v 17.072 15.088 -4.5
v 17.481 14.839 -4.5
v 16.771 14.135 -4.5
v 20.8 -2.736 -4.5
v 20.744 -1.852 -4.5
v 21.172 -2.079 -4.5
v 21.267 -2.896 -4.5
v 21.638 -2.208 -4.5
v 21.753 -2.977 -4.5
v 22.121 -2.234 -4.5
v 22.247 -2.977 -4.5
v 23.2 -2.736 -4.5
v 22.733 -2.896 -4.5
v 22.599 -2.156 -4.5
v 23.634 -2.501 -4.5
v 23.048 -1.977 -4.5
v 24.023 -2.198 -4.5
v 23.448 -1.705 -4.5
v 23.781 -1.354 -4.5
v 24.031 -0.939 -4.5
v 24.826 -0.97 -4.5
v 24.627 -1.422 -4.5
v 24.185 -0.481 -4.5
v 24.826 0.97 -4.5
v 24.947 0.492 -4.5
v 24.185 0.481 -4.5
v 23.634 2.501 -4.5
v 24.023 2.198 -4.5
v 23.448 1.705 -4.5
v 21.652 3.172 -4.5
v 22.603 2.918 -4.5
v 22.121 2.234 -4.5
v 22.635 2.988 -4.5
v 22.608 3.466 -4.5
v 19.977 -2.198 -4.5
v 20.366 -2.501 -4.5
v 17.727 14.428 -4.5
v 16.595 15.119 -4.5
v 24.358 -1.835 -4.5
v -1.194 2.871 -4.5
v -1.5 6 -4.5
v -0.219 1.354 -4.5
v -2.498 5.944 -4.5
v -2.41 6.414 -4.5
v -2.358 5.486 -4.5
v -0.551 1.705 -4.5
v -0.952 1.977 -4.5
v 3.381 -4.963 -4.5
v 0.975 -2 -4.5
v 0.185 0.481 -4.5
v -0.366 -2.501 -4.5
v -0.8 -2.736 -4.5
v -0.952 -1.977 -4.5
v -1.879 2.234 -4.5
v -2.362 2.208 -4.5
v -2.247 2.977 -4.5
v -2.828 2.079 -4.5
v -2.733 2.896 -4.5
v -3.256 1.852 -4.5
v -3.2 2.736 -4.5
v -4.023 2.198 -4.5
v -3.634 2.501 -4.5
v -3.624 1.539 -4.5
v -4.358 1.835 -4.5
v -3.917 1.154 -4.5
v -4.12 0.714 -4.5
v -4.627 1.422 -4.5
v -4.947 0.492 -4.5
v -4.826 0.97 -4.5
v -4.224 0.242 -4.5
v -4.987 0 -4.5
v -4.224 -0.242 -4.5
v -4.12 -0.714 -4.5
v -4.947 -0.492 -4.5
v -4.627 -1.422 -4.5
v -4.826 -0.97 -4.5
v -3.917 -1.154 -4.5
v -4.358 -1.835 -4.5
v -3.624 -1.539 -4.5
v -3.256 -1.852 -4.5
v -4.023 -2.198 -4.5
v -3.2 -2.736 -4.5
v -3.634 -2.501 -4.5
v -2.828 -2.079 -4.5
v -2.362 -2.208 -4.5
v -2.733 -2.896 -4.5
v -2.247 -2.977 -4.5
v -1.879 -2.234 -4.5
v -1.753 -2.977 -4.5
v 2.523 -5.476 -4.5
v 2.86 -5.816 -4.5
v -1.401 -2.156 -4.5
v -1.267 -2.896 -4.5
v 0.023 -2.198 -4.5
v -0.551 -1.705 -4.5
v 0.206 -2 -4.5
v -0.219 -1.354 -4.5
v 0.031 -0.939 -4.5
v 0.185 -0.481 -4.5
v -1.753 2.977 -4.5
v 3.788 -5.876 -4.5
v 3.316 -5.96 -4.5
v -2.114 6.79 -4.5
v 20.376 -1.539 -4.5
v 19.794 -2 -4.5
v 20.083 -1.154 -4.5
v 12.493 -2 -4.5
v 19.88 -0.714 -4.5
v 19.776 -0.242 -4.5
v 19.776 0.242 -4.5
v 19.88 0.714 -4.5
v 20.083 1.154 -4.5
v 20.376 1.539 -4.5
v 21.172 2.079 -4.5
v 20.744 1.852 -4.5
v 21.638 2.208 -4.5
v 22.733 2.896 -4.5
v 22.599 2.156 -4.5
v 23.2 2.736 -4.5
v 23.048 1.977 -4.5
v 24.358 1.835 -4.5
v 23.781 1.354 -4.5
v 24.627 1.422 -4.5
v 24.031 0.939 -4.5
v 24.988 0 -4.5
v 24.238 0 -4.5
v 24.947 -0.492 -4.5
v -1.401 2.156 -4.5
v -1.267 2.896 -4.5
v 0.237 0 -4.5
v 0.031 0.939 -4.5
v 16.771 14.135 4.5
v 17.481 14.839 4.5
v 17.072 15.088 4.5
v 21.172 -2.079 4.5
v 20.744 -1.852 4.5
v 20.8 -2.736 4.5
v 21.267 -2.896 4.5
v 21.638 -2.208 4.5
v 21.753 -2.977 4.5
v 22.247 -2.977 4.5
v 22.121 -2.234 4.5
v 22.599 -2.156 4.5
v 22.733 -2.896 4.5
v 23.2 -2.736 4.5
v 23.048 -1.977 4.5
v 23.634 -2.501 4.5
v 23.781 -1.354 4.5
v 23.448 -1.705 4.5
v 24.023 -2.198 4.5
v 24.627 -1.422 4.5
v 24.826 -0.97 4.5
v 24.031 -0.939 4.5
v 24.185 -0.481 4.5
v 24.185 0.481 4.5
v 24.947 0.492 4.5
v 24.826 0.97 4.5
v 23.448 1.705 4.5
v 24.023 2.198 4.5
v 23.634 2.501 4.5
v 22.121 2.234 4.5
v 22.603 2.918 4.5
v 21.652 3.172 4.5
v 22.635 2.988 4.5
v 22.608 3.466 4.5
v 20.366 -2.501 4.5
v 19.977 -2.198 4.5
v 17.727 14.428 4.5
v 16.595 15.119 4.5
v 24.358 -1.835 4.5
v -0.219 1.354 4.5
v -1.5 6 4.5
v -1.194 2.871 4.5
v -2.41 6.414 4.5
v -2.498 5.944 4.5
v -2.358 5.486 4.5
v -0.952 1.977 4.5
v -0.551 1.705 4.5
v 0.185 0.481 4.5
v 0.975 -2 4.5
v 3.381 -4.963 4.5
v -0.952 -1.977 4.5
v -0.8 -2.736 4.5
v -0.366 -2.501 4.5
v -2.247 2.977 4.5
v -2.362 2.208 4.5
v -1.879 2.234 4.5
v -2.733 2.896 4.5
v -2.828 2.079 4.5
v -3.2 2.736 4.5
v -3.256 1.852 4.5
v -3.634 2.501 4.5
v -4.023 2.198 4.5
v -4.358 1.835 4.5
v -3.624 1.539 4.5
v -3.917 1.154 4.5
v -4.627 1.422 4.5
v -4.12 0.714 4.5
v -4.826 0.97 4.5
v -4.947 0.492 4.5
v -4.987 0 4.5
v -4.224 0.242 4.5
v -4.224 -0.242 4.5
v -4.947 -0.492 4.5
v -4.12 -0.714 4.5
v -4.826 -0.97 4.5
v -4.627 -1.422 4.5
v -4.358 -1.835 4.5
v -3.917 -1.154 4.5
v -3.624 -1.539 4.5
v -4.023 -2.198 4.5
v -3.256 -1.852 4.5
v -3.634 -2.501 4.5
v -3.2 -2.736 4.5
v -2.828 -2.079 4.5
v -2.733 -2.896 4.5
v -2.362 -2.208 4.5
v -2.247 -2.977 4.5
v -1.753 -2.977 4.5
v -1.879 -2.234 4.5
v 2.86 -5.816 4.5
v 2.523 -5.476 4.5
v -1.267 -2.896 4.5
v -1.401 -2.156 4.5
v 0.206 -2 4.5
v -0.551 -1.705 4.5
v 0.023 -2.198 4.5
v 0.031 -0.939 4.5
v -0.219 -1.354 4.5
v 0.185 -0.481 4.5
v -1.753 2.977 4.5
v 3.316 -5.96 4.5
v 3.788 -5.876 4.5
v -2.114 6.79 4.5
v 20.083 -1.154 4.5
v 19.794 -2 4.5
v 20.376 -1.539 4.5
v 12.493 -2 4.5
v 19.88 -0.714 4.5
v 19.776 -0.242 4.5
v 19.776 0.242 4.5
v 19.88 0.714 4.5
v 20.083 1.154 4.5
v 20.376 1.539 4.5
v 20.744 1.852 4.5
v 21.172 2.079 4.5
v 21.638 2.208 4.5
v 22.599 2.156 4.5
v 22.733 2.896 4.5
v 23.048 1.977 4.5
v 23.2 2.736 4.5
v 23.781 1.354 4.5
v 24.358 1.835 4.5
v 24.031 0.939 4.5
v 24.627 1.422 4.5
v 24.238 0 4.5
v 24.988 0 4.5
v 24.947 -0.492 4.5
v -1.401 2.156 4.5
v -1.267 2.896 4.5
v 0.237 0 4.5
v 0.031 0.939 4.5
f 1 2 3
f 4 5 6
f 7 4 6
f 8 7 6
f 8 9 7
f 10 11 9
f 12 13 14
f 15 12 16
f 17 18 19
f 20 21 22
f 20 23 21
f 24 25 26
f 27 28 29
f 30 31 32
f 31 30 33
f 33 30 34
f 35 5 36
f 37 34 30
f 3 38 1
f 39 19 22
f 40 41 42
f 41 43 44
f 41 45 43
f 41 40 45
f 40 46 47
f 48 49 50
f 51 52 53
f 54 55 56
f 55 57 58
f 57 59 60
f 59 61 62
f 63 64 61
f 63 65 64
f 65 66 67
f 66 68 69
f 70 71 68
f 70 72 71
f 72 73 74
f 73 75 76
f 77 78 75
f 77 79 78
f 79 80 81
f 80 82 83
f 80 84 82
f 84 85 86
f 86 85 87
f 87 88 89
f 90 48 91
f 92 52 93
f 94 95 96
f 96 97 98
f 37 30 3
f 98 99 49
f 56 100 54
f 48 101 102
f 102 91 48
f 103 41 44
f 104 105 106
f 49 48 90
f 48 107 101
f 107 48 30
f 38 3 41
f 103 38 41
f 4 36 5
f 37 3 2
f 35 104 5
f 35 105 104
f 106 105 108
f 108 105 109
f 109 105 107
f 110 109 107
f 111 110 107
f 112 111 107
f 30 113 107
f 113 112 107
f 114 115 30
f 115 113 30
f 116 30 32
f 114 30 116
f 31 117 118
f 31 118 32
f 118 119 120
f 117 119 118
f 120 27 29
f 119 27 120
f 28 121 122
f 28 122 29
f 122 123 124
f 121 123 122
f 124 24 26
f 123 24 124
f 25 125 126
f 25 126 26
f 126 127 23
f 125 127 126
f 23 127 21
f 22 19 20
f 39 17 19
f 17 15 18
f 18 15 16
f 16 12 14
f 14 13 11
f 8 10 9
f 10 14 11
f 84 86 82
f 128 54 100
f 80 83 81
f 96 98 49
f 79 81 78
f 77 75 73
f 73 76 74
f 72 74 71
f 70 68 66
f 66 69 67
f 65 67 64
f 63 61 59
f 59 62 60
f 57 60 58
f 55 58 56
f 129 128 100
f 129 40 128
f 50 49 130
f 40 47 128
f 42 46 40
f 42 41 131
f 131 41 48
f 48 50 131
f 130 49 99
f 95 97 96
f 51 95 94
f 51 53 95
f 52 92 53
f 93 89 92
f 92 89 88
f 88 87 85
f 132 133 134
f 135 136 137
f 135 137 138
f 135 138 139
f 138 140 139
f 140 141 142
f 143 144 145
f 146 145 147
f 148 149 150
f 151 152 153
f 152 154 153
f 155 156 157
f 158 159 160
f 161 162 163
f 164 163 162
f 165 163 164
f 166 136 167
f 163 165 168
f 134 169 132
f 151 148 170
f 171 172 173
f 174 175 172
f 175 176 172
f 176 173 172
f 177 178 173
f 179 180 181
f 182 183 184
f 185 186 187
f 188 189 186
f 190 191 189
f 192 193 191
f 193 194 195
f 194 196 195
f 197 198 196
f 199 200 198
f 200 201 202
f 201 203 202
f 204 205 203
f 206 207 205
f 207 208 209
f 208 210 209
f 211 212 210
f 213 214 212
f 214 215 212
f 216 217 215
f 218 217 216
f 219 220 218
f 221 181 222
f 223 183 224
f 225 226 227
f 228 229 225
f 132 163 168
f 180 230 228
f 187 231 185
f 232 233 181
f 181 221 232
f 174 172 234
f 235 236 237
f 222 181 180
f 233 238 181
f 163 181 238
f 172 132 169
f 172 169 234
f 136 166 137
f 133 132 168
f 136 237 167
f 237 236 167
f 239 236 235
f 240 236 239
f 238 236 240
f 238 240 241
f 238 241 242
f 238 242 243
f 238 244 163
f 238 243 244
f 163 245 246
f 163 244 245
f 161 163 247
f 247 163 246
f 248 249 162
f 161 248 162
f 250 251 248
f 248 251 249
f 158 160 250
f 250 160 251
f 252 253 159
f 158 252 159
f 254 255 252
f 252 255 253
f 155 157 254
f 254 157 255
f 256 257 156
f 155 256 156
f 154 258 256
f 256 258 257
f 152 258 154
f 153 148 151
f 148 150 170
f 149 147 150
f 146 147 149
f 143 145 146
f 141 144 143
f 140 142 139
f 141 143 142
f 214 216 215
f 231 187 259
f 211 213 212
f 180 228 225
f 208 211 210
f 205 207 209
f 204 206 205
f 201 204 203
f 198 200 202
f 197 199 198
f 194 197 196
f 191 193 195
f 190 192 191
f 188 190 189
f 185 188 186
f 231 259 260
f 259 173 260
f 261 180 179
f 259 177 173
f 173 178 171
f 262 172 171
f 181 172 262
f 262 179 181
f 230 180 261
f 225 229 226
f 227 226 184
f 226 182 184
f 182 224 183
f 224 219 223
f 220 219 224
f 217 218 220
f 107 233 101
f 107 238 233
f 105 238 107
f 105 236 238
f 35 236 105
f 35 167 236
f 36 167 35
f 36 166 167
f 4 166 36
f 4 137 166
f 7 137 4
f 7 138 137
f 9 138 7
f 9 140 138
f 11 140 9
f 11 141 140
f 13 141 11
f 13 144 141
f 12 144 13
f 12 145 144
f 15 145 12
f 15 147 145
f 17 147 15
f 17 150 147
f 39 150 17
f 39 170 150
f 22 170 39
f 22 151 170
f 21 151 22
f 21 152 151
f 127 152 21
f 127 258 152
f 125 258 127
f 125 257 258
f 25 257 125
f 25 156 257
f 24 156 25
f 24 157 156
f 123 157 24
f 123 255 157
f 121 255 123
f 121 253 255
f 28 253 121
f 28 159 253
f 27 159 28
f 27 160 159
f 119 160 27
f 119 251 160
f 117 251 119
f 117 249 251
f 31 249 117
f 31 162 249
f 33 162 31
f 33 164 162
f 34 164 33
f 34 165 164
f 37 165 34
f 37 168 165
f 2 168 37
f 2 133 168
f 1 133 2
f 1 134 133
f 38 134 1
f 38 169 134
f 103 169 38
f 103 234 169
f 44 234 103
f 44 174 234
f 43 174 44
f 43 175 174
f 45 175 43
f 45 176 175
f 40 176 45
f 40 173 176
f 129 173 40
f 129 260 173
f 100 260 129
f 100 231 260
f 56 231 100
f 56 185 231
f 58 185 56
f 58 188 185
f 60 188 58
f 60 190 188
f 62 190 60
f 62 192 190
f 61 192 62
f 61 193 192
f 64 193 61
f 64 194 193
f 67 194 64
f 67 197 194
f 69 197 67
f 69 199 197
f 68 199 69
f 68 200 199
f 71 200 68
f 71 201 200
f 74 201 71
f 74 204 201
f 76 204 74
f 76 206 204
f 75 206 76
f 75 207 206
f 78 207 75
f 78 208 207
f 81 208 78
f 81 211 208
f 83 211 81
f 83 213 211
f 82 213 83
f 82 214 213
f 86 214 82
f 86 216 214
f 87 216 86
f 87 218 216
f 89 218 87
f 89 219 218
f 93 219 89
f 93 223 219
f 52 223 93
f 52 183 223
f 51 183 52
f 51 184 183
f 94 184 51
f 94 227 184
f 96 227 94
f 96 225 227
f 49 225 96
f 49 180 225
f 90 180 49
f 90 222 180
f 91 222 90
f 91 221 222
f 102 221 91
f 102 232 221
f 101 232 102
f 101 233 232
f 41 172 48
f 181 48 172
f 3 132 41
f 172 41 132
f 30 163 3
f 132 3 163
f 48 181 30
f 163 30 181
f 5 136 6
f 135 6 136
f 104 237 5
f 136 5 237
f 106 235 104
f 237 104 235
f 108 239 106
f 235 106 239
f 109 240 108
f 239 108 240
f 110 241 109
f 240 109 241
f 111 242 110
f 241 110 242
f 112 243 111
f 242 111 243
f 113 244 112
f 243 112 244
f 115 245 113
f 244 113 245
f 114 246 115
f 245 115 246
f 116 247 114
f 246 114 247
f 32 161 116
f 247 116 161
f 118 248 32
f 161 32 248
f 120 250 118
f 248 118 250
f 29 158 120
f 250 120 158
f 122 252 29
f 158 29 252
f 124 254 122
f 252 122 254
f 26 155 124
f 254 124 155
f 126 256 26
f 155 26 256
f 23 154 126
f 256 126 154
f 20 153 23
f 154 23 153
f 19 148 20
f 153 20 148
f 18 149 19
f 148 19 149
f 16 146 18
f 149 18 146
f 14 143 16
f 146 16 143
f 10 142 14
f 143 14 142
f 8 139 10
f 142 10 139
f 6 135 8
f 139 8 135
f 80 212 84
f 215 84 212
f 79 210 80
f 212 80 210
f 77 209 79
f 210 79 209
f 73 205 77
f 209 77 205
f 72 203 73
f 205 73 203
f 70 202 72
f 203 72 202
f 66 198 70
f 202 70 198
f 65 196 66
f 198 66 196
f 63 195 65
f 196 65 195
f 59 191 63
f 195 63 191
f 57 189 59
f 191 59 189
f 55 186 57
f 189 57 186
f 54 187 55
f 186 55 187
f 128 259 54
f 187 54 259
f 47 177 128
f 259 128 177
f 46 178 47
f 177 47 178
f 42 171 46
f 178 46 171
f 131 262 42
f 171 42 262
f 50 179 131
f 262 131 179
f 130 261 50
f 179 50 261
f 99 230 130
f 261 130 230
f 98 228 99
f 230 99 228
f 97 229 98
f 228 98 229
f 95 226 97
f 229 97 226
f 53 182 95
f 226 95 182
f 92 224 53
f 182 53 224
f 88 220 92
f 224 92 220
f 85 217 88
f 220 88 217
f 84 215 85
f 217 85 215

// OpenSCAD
vifly_height = 9;
vifly_width  = 12;
vifly_length = 20; 

thickness = 1;
standoff_width = 5;

case_rotation = 66;
case_offset_y = 6;
case_offset_x = -2.5;

anti_warp = .15;
filament_width = 1.75;

function anti_warp_widen(v) = v + (filament_width * anti_warp) * 2;
function anti_warp_shrink(v) = v - (filament_width * anti_warp) * 2;

$fs = $preview ? 1 : 0.5;
$fa = $preview ? 10 : 5;

module joint(diameter) {
	circle(d = diameter);
}

module standoff_hole(diameter) {
	joint(anti_warp_shrink(diameter));
}

module standoff() {
	difference() {
		standoff_hole(standoff_width * 1.3);
		standoff_hole(standoff_width);
	}
}

module standoff_bracket() {
	translate([22, 0]) standoff();
	translate([-2, 0]) standoff();
	translate([0, -thickness * 2]) square([20, thickness * 4]);
}

module vifly_model() {
	square([vifly_width, vifly_length]);
}

module case_vifly() {
	difference() {
		minkowski() {
			vifly_model();
			circle(thickness);
		}
		vifly_model();
	}
}

module holeout() {
	union() {
		translate([thickness + case_offset_x, case_offset_y]) rotate([0, 0, -case_rotation]) vifly_model();
		translate([22, 0]) standoff_hole(standoff_width);
		translate([-2, 0]) standoff_hole(standoff_width);
	}
}

module model() {
	union() {
		translate([thickness + case_offset_x, case_offset_y]) rotate([0, 0, -case_rotation]) case_vifly();
		standoff_bracket();
	}
}

module main() {
	linear_extrude(height = vifly_height, center = true) difference() {
		model();
		holeout();
	}
}

main();
